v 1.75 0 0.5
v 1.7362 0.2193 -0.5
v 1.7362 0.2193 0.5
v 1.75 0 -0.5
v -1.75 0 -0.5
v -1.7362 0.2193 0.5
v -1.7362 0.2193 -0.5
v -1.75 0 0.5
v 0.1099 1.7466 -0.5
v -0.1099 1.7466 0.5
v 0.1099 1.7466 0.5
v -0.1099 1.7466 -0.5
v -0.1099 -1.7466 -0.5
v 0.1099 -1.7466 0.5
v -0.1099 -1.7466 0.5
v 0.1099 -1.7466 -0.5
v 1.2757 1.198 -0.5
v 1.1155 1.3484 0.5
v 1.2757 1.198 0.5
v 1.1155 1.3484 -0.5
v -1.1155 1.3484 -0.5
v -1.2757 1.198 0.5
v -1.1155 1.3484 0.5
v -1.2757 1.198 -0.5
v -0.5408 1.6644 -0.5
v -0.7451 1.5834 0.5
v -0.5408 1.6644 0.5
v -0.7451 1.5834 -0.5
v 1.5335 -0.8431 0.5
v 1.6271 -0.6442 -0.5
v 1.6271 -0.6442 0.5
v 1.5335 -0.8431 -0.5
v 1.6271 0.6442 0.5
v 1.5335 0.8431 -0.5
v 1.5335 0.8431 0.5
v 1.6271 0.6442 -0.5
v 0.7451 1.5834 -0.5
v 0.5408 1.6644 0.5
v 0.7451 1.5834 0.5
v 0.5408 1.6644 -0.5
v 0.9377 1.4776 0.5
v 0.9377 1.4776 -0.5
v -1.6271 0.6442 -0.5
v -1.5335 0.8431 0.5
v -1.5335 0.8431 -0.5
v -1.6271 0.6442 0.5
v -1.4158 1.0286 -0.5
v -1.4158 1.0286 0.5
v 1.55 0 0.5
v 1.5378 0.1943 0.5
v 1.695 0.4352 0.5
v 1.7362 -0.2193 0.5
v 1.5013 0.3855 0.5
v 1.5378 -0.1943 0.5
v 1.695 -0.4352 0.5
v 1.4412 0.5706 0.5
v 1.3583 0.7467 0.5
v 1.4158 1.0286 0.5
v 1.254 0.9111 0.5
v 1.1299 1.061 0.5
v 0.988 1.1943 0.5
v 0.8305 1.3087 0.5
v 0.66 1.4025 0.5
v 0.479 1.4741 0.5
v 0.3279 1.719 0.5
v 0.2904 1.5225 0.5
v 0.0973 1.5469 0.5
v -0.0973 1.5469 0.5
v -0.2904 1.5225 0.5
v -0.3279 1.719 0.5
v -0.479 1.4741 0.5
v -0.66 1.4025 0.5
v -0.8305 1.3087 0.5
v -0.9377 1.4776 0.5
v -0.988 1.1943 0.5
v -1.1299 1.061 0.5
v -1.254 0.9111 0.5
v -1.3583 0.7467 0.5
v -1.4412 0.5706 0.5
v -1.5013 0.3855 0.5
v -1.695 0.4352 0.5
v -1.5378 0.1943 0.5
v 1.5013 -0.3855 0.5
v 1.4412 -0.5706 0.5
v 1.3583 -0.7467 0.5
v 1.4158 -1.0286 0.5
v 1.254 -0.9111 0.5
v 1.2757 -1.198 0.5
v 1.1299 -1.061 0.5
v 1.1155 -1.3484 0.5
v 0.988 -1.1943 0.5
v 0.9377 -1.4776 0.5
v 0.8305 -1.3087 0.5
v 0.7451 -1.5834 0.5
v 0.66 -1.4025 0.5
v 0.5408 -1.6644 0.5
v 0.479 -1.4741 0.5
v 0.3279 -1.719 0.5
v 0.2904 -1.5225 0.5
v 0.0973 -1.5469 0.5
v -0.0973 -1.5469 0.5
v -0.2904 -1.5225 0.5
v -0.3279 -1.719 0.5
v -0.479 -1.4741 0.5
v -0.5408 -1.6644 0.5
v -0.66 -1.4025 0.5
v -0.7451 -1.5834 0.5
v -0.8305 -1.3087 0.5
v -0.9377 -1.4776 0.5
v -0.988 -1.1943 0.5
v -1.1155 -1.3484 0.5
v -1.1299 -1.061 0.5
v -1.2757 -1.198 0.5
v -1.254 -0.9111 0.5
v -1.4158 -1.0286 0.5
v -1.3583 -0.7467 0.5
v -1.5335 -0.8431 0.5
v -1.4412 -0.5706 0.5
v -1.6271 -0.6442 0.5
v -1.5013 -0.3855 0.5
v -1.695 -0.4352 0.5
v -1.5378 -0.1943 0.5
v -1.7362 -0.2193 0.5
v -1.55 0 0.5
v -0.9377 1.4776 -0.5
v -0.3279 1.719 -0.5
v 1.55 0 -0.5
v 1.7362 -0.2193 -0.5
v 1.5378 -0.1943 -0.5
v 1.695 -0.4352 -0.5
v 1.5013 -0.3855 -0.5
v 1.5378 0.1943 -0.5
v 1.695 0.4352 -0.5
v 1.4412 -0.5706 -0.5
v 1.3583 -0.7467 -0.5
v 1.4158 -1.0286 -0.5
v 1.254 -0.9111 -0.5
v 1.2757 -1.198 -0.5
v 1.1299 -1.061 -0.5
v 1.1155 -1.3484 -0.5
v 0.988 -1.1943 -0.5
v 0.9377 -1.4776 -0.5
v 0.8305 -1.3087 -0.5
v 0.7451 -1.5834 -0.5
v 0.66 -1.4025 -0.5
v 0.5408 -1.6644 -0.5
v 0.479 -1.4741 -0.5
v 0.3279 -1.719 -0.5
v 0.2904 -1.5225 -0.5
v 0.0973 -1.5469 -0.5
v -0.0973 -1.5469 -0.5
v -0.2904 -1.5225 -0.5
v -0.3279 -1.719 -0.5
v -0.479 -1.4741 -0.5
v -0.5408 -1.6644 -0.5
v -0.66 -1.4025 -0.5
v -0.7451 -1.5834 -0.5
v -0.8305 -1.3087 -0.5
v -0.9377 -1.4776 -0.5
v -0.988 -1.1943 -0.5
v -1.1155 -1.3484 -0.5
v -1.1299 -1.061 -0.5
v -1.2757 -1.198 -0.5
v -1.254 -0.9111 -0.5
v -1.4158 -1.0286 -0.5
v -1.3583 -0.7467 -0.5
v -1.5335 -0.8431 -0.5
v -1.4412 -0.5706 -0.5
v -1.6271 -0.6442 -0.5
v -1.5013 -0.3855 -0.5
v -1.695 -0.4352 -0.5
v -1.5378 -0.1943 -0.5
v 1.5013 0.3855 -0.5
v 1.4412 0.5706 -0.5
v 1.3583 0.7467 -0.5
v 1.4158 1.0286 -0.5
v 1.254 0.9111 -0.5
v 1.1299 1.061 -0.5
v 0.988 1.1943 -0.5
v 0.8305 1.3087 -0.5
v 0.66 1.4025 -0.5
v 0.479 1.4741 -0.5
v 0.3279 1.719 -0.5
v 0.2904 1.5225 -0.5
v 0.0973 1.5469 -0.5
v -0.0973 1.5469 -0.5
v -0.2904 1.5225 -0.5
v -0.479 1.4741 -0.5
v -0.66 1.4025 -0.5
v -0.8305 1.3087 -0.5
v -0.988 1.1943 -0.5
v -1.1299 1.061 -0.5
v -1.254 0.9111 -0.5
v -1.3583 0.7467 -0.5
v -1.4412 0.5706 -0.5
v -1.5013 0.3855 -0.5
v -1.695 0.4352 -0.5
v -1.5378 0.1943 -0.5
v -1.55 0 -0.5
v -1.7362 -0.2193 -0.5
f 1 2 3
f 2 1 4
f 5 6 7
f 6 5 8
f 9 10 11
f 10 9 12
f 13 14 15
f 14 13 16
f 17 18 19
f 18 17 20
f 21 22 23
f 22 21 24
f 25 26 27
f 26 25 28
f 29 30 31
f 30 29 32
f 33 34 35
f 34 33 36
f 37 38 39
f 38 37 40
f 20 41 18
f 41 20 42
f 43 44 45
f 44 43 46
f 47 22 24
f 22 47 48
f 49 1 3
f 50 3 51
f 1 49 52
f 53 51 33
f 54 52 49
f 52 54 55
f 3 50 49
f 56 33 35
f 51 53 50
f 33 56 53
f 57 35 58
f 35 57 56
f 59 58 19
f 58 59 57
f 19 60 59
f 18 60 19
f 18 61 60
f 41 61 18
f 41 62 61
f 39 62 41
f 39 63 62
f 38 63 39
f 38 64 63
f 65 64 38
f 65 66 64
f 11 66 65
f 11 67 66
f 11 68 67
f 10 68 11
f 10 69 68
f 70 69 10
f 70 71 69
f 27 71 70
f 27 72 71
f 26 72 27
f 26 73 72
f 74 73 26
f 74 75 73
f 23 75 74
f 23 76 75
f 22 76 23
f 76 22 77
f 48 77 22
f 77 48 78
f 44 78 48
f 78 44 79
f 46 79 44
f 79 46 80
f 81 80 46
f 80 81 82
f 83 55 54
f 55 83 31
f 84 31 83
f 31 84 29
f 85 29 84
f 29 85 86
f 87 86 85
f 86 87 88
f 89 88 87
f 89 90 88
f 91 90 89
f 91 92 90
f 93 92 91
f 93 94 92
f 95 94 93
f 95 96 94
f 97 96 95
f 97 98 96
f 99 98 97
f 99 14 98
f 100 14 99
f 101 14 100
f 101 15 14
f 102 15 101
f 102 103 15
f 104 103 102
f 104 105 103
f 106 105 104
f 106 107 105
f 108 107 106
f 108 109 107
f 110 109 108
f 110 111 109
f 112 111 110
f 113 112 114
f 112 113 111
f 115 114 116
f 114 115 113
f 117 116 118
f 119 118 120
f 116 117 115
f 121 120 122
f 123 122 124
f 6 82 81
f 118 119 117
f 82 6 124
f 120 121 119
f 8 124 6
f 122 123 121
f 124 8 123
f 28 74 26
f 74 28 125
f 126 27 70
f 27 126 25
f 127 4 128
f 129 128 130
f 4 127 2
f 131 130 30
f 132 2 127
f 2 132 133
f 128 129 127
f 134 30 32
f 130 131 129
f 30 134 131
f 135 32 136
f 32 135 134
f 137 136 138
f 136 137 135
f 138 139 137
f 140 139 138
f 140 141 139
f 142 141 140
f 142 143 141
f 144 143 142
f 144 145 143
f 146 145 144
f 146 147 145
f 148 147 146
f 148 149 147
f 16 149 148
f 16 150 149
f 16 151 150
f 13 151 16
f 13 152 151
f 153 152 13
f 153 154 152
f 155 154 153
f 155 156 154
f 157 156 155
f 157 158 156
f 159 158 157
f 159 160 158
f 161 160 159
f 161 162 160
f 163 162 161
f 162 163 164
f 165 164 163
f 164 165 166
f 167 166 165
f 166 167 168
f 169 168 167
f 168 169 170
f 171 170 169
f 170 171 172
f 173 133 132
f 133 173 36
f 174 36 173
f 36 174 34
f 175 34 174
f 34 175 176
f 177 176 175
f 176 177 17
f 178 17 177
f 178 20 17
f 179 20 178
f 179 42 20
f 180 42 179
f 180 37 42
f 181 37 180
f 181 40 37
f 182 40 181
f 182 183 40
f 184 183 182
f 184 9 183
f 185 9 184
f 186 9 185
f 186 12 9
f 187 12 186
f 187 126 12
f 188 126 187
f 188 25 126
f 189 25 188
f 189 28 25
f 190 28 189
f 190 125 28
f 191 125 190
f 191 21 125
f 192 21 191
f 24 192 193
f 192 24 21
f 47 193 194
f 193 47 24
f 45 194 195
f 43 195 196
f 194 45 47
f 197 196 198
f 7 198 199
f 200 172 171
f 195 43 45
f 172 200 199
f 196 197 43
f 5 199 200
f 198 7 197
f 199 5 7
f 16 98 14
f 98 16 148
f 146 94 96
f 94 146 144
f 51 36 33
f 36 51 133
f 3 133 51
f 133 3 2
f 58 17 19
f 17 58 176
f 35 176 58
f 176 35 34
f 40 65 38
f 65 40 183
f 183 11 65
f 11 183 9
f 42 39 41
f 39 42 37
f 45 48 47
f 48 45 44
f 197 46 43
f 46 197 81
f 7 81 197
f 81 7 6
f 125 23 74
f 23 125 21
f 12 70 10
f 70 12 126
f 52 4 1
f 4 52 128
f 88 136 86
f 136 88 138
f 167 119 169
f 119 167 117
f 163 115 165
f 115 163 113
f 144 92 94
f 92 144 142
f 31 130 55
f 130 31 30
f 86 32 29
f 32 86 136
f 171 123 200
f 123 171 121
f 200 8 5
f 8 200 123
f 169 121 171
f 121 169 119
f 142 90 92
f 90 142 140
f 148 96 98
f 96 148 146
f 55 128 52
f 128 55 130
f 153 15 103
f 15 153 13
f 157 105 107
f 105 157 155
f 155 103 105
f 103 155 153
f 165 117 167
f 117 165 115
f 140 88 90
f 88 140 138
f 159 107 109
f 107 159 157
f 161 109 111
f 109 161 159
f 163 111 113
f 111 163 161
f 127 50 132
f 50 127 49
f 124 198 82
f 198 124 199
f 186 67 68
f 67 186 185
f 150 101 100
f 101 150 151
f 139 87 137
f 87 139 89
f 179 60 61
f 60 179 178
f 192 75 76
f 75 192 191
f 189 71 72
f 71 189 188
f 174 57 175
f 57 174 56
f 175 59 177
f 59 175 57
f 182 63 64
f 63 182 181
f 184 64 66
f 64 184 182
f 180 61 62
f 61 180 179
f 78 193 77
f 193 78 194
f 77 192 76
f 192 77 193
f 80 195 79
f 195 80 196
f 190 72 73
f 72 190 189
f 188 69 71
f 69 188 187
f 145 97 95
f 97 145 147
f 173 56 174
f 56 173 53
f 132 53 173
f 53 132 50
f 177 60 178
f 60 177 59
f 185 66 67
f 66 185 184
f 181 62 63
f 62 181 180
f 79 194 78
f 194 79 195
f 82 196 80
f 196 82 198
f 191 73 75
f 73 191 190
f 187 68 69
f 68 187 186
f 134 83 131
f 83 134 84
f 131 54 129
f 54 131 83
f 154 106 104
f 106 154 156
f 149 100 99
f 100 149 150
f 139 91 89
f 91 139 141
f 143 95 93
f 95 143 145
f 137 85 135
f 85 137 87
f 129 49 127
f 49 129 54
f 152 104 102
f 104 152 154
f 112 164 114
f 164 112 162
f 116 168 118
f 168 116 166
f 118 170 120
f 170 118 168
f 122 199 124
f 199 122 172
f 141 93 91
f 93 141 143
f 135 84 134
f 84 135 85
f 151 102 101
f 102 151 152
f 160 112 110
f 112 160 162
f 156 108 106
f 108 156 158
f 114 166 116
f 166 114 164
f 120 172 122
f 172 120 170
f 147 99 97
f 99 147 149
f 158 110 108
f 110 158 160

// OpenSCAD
$fn = 50;


difference() {
	union() {
		translate(v = [0, 0, -0.5000000000]) {
			cylinder(h = 1, r = 1.7500000000);
		}
	}
	union() {
		translate(v = [0, 0, -100.0000000000]) {
			cylinder(h = 200, r = 1.5500000000);
		}
	}
}
